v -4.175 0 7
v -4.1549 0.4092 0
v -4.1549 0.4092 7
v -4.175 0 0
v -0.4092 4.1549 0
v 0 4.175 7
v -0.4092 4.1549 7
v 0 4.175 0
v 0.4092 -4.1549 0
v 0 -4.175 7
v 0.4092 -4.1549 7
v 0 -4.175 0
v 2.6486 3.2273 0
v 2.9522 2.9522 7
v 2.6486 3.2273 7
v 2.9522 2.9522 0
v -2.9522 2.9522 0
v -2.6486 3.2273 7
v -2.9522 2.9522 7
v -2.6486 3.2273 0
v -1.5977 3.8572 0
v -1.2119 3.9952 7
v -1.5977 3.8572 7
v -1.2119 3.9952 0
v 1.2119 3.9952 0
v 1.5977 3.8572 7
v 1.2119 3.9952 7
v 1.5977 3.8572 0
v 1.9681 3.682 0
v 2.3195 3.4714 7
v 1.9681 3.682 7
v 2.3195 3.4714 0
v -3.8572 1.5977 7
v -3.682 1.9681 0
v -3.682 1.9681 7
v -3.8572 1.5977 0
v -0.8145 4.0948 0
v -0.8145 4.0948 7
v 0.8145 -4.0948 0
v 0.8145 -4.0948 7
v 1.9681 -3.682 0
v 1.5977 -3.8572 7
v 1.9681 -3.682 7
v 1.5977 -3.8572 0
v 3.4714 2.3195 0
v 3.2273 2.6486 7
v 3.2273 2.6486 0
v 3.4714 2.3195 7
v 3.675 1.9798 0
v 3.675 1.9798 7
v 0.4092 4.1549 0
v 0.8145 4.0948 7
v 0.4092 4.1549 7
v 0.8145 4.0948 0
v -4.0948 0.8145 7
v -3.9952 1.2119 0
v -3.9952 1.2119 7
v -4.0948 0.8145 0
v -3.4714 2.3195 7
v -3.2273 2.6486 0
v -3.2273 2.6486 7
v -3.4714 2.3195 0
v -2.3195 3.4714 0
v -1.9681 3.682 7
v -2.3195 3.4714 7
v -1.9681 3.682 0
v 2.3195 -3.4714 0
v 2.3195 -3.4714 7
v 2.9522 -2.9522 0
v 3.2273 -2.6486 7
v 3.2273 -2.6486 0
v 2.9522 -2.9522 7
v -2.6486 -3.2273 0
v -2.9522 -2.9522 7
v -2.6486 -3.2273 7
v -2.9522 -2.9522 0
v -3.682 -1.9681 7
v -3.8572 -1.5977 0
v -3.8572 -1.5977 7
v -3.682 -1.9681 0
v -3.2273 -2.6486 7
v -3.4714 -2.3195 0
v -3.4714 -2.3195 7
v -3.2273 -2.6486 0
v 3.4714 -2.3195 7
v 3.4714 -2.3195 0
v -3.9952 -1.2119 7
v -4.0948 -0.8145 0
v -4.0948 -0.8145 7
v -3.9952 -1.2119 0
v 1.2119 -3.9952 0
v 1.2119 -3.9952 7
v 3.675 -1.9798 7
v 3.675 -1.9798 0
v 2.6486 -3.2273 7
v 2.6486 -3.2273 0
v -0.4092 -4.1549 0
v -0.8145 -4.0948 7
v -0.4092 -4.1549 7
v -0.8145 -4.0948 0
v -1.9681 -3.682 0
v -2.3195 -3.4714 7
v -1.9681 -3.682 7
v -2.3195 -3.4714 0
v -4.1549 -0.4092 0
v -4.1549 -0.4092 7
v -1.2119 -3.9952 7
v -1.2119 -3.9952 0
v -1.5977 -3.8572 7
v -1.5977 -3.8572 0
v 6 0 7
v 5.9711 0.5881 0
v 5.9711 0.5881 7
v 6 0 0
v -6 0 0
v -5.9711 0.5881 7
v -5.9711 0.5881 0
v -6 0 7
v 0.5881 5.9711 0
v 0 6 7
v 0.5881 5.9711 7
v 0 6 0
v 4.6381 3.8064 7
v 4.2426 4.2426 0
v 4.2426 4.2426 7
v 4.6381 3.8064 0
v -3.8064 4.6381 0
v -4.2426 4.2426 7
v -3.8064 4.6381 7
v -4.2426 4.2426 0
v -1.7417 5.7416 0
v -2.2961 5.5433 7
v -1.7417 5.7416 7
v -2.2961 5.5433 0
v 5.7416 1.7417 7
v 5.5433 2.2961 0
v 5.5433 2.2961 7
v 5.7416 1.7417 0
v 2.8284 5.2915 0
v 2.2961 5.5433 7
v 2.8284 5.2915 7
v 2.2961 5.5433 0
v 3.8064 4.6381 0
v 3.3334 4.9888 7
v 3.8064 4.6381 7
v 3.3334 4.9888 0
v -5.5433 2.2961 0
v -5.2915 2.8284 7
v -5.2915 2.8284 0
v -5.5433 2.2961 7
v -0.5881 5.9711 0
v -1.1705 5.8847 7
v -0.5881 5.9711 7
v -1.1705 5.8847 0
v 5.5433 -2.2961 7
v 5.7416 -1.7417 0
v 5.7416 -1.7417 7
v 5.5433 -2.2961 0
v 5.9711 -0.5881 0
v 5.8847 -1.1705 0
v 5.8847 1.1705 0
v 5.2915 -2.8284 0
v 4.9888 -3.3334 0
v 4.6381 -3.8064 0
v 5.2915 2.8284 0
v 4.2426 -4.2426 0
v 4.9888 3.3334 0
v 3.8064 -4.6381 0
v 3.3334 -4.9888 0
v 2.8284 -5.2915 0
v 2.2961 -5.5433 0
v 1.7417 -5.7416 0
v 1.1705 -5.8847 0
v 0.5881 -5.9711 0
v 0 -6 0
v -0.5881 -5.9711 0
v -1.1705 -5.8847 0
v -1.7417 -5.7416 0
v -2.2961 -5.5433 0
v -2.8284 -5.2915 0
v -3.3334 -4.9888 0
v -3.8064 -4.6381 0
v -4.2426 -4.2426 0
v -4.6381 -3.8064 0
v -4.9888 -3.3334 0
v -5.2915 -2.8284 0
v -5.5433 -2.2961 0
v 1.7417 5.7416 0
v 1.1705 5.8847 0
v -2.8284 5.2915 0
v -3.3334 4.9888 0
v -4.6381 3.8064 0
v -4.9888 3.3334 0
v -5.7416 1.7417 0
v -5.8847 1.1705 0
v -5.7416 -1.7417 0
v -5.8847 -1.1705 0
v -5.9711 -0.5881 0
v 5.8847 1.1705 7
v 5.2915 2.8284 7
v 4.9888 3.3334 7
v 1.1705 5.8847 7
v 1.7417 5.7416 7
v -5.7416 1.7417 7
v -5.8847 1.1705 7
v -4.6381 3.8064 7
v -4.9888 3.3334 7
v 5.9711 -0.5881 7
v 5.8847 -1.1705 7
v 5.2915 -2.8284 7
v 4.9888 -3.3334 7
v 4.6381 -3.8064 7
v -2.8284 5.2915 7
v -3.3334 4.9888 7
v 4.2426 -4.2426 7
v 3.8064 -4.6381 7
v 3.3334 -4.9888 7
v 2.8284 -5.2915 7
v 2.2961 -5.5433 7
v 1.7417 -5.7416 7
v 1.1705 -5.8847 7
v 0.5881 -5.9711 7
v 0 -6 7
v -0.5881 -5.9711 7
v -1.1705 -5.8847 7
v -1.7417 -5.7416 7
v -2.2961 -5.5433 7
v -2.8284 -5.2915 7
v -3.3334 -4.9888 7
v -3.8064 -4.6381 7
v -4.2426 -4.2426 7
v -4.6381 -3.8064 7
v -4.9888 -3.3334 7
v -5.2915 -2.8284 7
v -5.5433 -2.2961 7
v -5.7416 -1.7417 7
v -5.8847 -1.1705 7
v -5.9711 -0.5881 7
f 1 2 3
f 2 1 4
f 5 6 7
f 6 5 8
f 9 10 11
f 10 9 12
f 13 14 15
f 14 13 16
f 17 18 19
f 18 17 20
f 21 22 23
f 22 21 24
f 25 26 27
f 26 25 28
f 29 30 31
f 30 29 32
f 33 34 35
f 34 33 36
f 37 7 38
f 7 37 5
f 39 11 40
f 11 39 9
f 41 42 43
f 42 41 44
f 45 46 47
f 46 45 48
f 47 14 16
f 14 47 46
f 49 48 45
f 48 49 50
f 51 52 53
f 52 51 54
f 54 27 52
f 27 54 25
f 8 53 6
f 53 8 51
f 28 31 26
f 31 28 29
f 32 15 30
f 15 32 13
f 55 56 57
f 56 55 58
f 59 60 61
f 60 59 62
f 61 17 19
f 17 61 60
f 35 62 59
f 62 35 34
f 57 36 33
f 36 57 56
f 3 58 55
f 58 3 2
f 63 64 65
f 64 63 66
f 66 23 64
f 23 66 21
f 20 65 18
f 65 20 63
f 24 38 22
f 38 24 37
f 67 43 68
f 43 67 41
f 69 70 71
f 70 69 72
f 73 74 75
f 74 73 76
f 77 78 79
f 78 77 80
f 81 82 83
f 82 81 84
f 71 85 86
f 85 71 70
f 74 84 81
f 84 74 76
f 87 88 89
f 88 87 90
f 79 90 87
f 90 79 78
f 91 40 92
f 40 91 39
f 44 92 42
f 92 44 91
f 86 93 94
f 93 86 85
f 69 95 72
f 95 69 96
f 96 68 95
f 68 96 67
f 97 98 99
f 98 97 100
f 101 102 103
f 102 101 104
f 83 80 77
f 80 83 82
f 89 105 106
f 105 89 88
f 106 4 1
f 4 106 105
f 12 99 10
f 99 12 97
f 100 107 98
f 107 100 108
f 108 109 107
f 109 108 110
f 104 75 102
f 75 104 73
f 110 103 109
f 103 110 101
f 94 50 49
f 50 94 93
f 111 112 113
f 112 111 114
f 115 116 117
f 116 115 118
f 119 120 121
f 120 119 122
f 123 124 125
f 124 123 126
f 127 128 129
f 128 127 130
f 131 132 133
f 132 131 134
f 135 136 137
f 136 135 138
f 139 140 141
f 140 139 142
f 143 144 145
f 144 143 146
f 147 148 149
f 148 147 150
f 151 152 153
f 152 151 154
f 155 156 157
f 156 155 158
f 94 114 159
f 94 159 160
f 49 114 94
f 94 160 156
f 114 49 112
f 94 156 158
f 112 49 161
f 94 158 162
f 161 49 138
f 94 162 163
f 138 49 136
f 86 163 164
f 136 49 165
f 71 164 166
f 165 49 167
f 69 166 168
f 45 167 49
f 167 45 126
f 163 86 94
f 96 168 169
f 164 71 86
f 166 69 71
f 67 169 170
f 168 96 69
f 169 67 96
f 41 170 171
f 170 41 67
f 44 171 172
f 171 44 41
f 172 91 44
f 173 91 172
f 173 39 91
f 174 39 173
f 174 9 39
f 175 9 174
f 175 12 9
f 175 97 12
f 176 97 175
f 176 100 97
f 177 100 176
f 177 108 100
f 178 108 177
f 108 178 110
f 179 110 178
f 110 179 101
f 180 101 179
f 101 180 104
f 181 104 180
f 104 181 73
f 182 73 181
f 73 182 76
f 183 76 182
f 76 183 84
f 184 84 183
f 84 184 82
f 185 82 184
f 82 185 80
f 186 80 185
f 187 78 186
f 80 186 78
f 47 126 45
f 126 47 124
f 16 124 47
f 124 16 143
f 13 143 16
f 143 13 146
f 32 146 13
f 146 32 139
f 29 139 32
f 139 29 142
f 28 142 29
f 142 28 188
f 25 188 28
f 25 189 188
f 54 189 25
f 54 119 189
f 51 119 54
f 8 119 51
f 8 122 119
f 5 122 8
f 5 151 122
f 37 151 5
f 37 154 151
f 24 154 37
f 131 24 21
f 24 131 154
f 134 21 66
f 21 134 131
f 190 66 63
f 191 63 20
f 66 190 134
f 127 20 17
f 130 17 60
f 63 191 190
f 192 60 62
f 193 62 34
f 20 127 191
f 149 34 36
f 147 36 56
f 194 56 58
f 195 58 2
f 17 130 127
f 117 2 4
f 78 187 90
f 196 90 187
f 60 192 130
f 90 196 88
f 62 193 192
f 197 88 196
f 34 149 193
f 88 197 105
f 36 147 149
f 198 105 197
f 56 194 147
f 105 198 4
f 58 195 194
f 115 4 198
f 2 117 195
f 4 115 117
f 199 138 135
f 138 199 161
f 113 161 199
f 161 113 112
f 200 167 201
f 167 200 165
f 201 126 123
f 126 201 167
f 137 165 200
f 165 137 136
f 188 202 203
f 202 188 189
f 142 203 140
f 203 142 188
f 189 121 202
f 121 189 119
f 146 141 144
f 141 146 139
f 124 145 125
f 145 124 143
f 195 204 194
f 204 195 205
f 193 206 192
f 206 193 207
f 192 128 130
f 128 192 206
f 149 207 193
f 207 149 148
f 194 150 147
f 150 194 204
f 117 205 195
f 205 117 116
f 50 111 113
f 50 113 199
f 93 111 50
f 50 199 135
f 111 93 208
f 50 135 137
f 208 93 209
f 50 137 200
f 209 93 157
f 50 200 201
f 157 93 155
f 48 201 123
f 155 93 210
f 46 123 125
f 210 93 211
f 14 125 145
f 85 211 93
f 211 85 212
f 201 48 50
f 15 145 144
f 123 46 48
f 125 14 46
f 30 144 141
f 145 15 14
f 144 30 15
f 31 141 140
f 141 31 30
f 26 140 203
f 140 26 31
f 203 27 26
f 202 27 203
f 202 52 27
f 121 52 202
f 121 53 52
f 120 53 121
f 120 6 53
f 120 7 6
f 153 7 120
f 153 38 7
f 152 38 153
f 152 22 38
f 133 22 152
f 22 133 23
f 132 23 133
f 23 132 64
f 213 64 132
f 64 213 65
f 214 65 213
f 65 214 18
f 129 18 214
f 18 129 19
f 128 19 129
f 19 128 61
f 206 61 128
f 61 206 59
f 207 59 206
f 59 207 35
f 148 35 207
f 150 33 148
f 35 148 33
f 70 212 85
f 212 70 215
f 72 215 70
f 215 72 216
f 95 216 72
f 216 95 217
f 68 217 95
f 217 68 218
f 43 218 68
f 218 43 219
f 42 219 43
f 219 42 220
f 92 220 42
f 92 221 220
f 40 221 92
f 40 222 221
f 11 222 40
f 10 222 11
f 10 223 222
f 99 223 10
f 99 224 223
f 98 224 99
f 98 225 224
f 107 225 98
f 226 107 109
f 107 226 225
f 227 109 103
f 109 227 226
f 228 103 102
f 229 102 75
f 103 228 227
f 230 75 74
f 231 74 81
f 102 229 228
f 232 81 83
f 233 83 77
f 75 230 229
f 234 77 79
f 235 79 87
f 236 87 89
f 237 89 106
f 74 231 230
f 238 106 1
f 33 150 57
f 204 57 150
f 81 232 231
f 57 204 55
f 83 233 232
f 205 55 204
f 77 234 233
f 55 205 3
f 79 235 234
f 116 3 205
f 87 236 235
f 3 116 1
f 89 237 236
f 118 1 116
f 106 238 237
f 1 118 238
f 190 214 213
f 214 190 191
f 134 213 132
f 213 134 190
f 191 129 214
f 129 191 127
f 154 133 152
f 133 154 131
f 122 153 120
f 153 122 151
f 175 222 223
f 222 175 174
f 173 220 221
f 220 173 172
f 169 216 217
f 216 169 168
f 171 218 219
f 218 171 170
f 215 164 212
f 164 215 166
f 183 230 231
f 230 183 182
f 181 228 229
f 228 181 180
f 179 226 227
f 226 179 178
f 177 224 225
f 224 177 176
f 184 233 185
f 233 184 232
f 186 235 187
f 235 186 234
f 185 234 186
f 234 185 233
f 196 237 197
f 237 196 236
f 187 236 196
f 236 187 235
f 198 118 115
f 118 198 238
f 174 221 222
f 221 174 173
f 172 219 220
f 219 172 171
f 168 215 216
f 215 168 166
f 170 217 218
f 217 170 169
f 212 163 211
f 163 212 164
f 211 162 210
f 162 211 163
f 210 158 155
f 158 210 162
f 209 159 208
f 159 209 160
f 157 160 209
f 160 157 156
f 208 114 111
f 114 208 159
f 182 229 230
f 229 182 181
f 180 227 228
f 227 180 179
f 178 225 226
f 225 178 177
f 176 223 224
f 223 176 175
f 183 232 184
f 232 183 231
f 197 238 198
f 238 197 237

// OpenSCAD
// Gen-DP — gap sleeve: rigid spacer on the shaft BETWEEN the two rotor carriers (passes through the stator
// hole). Length = m2m, so it sets the magnet gap and carries the full magnet pull. Print x1, upright.
include <parameters.scad>;
$fn = 64;
// D-flat keyed bore: flat faces +X (angle 0 = magnet pocket 0 = index notch)
module dflat_bore(h) {
    intersection() {
        cylinder(d=shaft_bore, h=h);
        translate([-shaft_bore, -shaft_bore, 0]) cube([shaft_bore + dflat_x, 2*shaft_bore, h]);
    }
}

difference() {
    cylinder(d=sleeve_od, h=m2m);
    translate([0, 0, -0.1]) dflat_bore(m2m + 0.2);
}
